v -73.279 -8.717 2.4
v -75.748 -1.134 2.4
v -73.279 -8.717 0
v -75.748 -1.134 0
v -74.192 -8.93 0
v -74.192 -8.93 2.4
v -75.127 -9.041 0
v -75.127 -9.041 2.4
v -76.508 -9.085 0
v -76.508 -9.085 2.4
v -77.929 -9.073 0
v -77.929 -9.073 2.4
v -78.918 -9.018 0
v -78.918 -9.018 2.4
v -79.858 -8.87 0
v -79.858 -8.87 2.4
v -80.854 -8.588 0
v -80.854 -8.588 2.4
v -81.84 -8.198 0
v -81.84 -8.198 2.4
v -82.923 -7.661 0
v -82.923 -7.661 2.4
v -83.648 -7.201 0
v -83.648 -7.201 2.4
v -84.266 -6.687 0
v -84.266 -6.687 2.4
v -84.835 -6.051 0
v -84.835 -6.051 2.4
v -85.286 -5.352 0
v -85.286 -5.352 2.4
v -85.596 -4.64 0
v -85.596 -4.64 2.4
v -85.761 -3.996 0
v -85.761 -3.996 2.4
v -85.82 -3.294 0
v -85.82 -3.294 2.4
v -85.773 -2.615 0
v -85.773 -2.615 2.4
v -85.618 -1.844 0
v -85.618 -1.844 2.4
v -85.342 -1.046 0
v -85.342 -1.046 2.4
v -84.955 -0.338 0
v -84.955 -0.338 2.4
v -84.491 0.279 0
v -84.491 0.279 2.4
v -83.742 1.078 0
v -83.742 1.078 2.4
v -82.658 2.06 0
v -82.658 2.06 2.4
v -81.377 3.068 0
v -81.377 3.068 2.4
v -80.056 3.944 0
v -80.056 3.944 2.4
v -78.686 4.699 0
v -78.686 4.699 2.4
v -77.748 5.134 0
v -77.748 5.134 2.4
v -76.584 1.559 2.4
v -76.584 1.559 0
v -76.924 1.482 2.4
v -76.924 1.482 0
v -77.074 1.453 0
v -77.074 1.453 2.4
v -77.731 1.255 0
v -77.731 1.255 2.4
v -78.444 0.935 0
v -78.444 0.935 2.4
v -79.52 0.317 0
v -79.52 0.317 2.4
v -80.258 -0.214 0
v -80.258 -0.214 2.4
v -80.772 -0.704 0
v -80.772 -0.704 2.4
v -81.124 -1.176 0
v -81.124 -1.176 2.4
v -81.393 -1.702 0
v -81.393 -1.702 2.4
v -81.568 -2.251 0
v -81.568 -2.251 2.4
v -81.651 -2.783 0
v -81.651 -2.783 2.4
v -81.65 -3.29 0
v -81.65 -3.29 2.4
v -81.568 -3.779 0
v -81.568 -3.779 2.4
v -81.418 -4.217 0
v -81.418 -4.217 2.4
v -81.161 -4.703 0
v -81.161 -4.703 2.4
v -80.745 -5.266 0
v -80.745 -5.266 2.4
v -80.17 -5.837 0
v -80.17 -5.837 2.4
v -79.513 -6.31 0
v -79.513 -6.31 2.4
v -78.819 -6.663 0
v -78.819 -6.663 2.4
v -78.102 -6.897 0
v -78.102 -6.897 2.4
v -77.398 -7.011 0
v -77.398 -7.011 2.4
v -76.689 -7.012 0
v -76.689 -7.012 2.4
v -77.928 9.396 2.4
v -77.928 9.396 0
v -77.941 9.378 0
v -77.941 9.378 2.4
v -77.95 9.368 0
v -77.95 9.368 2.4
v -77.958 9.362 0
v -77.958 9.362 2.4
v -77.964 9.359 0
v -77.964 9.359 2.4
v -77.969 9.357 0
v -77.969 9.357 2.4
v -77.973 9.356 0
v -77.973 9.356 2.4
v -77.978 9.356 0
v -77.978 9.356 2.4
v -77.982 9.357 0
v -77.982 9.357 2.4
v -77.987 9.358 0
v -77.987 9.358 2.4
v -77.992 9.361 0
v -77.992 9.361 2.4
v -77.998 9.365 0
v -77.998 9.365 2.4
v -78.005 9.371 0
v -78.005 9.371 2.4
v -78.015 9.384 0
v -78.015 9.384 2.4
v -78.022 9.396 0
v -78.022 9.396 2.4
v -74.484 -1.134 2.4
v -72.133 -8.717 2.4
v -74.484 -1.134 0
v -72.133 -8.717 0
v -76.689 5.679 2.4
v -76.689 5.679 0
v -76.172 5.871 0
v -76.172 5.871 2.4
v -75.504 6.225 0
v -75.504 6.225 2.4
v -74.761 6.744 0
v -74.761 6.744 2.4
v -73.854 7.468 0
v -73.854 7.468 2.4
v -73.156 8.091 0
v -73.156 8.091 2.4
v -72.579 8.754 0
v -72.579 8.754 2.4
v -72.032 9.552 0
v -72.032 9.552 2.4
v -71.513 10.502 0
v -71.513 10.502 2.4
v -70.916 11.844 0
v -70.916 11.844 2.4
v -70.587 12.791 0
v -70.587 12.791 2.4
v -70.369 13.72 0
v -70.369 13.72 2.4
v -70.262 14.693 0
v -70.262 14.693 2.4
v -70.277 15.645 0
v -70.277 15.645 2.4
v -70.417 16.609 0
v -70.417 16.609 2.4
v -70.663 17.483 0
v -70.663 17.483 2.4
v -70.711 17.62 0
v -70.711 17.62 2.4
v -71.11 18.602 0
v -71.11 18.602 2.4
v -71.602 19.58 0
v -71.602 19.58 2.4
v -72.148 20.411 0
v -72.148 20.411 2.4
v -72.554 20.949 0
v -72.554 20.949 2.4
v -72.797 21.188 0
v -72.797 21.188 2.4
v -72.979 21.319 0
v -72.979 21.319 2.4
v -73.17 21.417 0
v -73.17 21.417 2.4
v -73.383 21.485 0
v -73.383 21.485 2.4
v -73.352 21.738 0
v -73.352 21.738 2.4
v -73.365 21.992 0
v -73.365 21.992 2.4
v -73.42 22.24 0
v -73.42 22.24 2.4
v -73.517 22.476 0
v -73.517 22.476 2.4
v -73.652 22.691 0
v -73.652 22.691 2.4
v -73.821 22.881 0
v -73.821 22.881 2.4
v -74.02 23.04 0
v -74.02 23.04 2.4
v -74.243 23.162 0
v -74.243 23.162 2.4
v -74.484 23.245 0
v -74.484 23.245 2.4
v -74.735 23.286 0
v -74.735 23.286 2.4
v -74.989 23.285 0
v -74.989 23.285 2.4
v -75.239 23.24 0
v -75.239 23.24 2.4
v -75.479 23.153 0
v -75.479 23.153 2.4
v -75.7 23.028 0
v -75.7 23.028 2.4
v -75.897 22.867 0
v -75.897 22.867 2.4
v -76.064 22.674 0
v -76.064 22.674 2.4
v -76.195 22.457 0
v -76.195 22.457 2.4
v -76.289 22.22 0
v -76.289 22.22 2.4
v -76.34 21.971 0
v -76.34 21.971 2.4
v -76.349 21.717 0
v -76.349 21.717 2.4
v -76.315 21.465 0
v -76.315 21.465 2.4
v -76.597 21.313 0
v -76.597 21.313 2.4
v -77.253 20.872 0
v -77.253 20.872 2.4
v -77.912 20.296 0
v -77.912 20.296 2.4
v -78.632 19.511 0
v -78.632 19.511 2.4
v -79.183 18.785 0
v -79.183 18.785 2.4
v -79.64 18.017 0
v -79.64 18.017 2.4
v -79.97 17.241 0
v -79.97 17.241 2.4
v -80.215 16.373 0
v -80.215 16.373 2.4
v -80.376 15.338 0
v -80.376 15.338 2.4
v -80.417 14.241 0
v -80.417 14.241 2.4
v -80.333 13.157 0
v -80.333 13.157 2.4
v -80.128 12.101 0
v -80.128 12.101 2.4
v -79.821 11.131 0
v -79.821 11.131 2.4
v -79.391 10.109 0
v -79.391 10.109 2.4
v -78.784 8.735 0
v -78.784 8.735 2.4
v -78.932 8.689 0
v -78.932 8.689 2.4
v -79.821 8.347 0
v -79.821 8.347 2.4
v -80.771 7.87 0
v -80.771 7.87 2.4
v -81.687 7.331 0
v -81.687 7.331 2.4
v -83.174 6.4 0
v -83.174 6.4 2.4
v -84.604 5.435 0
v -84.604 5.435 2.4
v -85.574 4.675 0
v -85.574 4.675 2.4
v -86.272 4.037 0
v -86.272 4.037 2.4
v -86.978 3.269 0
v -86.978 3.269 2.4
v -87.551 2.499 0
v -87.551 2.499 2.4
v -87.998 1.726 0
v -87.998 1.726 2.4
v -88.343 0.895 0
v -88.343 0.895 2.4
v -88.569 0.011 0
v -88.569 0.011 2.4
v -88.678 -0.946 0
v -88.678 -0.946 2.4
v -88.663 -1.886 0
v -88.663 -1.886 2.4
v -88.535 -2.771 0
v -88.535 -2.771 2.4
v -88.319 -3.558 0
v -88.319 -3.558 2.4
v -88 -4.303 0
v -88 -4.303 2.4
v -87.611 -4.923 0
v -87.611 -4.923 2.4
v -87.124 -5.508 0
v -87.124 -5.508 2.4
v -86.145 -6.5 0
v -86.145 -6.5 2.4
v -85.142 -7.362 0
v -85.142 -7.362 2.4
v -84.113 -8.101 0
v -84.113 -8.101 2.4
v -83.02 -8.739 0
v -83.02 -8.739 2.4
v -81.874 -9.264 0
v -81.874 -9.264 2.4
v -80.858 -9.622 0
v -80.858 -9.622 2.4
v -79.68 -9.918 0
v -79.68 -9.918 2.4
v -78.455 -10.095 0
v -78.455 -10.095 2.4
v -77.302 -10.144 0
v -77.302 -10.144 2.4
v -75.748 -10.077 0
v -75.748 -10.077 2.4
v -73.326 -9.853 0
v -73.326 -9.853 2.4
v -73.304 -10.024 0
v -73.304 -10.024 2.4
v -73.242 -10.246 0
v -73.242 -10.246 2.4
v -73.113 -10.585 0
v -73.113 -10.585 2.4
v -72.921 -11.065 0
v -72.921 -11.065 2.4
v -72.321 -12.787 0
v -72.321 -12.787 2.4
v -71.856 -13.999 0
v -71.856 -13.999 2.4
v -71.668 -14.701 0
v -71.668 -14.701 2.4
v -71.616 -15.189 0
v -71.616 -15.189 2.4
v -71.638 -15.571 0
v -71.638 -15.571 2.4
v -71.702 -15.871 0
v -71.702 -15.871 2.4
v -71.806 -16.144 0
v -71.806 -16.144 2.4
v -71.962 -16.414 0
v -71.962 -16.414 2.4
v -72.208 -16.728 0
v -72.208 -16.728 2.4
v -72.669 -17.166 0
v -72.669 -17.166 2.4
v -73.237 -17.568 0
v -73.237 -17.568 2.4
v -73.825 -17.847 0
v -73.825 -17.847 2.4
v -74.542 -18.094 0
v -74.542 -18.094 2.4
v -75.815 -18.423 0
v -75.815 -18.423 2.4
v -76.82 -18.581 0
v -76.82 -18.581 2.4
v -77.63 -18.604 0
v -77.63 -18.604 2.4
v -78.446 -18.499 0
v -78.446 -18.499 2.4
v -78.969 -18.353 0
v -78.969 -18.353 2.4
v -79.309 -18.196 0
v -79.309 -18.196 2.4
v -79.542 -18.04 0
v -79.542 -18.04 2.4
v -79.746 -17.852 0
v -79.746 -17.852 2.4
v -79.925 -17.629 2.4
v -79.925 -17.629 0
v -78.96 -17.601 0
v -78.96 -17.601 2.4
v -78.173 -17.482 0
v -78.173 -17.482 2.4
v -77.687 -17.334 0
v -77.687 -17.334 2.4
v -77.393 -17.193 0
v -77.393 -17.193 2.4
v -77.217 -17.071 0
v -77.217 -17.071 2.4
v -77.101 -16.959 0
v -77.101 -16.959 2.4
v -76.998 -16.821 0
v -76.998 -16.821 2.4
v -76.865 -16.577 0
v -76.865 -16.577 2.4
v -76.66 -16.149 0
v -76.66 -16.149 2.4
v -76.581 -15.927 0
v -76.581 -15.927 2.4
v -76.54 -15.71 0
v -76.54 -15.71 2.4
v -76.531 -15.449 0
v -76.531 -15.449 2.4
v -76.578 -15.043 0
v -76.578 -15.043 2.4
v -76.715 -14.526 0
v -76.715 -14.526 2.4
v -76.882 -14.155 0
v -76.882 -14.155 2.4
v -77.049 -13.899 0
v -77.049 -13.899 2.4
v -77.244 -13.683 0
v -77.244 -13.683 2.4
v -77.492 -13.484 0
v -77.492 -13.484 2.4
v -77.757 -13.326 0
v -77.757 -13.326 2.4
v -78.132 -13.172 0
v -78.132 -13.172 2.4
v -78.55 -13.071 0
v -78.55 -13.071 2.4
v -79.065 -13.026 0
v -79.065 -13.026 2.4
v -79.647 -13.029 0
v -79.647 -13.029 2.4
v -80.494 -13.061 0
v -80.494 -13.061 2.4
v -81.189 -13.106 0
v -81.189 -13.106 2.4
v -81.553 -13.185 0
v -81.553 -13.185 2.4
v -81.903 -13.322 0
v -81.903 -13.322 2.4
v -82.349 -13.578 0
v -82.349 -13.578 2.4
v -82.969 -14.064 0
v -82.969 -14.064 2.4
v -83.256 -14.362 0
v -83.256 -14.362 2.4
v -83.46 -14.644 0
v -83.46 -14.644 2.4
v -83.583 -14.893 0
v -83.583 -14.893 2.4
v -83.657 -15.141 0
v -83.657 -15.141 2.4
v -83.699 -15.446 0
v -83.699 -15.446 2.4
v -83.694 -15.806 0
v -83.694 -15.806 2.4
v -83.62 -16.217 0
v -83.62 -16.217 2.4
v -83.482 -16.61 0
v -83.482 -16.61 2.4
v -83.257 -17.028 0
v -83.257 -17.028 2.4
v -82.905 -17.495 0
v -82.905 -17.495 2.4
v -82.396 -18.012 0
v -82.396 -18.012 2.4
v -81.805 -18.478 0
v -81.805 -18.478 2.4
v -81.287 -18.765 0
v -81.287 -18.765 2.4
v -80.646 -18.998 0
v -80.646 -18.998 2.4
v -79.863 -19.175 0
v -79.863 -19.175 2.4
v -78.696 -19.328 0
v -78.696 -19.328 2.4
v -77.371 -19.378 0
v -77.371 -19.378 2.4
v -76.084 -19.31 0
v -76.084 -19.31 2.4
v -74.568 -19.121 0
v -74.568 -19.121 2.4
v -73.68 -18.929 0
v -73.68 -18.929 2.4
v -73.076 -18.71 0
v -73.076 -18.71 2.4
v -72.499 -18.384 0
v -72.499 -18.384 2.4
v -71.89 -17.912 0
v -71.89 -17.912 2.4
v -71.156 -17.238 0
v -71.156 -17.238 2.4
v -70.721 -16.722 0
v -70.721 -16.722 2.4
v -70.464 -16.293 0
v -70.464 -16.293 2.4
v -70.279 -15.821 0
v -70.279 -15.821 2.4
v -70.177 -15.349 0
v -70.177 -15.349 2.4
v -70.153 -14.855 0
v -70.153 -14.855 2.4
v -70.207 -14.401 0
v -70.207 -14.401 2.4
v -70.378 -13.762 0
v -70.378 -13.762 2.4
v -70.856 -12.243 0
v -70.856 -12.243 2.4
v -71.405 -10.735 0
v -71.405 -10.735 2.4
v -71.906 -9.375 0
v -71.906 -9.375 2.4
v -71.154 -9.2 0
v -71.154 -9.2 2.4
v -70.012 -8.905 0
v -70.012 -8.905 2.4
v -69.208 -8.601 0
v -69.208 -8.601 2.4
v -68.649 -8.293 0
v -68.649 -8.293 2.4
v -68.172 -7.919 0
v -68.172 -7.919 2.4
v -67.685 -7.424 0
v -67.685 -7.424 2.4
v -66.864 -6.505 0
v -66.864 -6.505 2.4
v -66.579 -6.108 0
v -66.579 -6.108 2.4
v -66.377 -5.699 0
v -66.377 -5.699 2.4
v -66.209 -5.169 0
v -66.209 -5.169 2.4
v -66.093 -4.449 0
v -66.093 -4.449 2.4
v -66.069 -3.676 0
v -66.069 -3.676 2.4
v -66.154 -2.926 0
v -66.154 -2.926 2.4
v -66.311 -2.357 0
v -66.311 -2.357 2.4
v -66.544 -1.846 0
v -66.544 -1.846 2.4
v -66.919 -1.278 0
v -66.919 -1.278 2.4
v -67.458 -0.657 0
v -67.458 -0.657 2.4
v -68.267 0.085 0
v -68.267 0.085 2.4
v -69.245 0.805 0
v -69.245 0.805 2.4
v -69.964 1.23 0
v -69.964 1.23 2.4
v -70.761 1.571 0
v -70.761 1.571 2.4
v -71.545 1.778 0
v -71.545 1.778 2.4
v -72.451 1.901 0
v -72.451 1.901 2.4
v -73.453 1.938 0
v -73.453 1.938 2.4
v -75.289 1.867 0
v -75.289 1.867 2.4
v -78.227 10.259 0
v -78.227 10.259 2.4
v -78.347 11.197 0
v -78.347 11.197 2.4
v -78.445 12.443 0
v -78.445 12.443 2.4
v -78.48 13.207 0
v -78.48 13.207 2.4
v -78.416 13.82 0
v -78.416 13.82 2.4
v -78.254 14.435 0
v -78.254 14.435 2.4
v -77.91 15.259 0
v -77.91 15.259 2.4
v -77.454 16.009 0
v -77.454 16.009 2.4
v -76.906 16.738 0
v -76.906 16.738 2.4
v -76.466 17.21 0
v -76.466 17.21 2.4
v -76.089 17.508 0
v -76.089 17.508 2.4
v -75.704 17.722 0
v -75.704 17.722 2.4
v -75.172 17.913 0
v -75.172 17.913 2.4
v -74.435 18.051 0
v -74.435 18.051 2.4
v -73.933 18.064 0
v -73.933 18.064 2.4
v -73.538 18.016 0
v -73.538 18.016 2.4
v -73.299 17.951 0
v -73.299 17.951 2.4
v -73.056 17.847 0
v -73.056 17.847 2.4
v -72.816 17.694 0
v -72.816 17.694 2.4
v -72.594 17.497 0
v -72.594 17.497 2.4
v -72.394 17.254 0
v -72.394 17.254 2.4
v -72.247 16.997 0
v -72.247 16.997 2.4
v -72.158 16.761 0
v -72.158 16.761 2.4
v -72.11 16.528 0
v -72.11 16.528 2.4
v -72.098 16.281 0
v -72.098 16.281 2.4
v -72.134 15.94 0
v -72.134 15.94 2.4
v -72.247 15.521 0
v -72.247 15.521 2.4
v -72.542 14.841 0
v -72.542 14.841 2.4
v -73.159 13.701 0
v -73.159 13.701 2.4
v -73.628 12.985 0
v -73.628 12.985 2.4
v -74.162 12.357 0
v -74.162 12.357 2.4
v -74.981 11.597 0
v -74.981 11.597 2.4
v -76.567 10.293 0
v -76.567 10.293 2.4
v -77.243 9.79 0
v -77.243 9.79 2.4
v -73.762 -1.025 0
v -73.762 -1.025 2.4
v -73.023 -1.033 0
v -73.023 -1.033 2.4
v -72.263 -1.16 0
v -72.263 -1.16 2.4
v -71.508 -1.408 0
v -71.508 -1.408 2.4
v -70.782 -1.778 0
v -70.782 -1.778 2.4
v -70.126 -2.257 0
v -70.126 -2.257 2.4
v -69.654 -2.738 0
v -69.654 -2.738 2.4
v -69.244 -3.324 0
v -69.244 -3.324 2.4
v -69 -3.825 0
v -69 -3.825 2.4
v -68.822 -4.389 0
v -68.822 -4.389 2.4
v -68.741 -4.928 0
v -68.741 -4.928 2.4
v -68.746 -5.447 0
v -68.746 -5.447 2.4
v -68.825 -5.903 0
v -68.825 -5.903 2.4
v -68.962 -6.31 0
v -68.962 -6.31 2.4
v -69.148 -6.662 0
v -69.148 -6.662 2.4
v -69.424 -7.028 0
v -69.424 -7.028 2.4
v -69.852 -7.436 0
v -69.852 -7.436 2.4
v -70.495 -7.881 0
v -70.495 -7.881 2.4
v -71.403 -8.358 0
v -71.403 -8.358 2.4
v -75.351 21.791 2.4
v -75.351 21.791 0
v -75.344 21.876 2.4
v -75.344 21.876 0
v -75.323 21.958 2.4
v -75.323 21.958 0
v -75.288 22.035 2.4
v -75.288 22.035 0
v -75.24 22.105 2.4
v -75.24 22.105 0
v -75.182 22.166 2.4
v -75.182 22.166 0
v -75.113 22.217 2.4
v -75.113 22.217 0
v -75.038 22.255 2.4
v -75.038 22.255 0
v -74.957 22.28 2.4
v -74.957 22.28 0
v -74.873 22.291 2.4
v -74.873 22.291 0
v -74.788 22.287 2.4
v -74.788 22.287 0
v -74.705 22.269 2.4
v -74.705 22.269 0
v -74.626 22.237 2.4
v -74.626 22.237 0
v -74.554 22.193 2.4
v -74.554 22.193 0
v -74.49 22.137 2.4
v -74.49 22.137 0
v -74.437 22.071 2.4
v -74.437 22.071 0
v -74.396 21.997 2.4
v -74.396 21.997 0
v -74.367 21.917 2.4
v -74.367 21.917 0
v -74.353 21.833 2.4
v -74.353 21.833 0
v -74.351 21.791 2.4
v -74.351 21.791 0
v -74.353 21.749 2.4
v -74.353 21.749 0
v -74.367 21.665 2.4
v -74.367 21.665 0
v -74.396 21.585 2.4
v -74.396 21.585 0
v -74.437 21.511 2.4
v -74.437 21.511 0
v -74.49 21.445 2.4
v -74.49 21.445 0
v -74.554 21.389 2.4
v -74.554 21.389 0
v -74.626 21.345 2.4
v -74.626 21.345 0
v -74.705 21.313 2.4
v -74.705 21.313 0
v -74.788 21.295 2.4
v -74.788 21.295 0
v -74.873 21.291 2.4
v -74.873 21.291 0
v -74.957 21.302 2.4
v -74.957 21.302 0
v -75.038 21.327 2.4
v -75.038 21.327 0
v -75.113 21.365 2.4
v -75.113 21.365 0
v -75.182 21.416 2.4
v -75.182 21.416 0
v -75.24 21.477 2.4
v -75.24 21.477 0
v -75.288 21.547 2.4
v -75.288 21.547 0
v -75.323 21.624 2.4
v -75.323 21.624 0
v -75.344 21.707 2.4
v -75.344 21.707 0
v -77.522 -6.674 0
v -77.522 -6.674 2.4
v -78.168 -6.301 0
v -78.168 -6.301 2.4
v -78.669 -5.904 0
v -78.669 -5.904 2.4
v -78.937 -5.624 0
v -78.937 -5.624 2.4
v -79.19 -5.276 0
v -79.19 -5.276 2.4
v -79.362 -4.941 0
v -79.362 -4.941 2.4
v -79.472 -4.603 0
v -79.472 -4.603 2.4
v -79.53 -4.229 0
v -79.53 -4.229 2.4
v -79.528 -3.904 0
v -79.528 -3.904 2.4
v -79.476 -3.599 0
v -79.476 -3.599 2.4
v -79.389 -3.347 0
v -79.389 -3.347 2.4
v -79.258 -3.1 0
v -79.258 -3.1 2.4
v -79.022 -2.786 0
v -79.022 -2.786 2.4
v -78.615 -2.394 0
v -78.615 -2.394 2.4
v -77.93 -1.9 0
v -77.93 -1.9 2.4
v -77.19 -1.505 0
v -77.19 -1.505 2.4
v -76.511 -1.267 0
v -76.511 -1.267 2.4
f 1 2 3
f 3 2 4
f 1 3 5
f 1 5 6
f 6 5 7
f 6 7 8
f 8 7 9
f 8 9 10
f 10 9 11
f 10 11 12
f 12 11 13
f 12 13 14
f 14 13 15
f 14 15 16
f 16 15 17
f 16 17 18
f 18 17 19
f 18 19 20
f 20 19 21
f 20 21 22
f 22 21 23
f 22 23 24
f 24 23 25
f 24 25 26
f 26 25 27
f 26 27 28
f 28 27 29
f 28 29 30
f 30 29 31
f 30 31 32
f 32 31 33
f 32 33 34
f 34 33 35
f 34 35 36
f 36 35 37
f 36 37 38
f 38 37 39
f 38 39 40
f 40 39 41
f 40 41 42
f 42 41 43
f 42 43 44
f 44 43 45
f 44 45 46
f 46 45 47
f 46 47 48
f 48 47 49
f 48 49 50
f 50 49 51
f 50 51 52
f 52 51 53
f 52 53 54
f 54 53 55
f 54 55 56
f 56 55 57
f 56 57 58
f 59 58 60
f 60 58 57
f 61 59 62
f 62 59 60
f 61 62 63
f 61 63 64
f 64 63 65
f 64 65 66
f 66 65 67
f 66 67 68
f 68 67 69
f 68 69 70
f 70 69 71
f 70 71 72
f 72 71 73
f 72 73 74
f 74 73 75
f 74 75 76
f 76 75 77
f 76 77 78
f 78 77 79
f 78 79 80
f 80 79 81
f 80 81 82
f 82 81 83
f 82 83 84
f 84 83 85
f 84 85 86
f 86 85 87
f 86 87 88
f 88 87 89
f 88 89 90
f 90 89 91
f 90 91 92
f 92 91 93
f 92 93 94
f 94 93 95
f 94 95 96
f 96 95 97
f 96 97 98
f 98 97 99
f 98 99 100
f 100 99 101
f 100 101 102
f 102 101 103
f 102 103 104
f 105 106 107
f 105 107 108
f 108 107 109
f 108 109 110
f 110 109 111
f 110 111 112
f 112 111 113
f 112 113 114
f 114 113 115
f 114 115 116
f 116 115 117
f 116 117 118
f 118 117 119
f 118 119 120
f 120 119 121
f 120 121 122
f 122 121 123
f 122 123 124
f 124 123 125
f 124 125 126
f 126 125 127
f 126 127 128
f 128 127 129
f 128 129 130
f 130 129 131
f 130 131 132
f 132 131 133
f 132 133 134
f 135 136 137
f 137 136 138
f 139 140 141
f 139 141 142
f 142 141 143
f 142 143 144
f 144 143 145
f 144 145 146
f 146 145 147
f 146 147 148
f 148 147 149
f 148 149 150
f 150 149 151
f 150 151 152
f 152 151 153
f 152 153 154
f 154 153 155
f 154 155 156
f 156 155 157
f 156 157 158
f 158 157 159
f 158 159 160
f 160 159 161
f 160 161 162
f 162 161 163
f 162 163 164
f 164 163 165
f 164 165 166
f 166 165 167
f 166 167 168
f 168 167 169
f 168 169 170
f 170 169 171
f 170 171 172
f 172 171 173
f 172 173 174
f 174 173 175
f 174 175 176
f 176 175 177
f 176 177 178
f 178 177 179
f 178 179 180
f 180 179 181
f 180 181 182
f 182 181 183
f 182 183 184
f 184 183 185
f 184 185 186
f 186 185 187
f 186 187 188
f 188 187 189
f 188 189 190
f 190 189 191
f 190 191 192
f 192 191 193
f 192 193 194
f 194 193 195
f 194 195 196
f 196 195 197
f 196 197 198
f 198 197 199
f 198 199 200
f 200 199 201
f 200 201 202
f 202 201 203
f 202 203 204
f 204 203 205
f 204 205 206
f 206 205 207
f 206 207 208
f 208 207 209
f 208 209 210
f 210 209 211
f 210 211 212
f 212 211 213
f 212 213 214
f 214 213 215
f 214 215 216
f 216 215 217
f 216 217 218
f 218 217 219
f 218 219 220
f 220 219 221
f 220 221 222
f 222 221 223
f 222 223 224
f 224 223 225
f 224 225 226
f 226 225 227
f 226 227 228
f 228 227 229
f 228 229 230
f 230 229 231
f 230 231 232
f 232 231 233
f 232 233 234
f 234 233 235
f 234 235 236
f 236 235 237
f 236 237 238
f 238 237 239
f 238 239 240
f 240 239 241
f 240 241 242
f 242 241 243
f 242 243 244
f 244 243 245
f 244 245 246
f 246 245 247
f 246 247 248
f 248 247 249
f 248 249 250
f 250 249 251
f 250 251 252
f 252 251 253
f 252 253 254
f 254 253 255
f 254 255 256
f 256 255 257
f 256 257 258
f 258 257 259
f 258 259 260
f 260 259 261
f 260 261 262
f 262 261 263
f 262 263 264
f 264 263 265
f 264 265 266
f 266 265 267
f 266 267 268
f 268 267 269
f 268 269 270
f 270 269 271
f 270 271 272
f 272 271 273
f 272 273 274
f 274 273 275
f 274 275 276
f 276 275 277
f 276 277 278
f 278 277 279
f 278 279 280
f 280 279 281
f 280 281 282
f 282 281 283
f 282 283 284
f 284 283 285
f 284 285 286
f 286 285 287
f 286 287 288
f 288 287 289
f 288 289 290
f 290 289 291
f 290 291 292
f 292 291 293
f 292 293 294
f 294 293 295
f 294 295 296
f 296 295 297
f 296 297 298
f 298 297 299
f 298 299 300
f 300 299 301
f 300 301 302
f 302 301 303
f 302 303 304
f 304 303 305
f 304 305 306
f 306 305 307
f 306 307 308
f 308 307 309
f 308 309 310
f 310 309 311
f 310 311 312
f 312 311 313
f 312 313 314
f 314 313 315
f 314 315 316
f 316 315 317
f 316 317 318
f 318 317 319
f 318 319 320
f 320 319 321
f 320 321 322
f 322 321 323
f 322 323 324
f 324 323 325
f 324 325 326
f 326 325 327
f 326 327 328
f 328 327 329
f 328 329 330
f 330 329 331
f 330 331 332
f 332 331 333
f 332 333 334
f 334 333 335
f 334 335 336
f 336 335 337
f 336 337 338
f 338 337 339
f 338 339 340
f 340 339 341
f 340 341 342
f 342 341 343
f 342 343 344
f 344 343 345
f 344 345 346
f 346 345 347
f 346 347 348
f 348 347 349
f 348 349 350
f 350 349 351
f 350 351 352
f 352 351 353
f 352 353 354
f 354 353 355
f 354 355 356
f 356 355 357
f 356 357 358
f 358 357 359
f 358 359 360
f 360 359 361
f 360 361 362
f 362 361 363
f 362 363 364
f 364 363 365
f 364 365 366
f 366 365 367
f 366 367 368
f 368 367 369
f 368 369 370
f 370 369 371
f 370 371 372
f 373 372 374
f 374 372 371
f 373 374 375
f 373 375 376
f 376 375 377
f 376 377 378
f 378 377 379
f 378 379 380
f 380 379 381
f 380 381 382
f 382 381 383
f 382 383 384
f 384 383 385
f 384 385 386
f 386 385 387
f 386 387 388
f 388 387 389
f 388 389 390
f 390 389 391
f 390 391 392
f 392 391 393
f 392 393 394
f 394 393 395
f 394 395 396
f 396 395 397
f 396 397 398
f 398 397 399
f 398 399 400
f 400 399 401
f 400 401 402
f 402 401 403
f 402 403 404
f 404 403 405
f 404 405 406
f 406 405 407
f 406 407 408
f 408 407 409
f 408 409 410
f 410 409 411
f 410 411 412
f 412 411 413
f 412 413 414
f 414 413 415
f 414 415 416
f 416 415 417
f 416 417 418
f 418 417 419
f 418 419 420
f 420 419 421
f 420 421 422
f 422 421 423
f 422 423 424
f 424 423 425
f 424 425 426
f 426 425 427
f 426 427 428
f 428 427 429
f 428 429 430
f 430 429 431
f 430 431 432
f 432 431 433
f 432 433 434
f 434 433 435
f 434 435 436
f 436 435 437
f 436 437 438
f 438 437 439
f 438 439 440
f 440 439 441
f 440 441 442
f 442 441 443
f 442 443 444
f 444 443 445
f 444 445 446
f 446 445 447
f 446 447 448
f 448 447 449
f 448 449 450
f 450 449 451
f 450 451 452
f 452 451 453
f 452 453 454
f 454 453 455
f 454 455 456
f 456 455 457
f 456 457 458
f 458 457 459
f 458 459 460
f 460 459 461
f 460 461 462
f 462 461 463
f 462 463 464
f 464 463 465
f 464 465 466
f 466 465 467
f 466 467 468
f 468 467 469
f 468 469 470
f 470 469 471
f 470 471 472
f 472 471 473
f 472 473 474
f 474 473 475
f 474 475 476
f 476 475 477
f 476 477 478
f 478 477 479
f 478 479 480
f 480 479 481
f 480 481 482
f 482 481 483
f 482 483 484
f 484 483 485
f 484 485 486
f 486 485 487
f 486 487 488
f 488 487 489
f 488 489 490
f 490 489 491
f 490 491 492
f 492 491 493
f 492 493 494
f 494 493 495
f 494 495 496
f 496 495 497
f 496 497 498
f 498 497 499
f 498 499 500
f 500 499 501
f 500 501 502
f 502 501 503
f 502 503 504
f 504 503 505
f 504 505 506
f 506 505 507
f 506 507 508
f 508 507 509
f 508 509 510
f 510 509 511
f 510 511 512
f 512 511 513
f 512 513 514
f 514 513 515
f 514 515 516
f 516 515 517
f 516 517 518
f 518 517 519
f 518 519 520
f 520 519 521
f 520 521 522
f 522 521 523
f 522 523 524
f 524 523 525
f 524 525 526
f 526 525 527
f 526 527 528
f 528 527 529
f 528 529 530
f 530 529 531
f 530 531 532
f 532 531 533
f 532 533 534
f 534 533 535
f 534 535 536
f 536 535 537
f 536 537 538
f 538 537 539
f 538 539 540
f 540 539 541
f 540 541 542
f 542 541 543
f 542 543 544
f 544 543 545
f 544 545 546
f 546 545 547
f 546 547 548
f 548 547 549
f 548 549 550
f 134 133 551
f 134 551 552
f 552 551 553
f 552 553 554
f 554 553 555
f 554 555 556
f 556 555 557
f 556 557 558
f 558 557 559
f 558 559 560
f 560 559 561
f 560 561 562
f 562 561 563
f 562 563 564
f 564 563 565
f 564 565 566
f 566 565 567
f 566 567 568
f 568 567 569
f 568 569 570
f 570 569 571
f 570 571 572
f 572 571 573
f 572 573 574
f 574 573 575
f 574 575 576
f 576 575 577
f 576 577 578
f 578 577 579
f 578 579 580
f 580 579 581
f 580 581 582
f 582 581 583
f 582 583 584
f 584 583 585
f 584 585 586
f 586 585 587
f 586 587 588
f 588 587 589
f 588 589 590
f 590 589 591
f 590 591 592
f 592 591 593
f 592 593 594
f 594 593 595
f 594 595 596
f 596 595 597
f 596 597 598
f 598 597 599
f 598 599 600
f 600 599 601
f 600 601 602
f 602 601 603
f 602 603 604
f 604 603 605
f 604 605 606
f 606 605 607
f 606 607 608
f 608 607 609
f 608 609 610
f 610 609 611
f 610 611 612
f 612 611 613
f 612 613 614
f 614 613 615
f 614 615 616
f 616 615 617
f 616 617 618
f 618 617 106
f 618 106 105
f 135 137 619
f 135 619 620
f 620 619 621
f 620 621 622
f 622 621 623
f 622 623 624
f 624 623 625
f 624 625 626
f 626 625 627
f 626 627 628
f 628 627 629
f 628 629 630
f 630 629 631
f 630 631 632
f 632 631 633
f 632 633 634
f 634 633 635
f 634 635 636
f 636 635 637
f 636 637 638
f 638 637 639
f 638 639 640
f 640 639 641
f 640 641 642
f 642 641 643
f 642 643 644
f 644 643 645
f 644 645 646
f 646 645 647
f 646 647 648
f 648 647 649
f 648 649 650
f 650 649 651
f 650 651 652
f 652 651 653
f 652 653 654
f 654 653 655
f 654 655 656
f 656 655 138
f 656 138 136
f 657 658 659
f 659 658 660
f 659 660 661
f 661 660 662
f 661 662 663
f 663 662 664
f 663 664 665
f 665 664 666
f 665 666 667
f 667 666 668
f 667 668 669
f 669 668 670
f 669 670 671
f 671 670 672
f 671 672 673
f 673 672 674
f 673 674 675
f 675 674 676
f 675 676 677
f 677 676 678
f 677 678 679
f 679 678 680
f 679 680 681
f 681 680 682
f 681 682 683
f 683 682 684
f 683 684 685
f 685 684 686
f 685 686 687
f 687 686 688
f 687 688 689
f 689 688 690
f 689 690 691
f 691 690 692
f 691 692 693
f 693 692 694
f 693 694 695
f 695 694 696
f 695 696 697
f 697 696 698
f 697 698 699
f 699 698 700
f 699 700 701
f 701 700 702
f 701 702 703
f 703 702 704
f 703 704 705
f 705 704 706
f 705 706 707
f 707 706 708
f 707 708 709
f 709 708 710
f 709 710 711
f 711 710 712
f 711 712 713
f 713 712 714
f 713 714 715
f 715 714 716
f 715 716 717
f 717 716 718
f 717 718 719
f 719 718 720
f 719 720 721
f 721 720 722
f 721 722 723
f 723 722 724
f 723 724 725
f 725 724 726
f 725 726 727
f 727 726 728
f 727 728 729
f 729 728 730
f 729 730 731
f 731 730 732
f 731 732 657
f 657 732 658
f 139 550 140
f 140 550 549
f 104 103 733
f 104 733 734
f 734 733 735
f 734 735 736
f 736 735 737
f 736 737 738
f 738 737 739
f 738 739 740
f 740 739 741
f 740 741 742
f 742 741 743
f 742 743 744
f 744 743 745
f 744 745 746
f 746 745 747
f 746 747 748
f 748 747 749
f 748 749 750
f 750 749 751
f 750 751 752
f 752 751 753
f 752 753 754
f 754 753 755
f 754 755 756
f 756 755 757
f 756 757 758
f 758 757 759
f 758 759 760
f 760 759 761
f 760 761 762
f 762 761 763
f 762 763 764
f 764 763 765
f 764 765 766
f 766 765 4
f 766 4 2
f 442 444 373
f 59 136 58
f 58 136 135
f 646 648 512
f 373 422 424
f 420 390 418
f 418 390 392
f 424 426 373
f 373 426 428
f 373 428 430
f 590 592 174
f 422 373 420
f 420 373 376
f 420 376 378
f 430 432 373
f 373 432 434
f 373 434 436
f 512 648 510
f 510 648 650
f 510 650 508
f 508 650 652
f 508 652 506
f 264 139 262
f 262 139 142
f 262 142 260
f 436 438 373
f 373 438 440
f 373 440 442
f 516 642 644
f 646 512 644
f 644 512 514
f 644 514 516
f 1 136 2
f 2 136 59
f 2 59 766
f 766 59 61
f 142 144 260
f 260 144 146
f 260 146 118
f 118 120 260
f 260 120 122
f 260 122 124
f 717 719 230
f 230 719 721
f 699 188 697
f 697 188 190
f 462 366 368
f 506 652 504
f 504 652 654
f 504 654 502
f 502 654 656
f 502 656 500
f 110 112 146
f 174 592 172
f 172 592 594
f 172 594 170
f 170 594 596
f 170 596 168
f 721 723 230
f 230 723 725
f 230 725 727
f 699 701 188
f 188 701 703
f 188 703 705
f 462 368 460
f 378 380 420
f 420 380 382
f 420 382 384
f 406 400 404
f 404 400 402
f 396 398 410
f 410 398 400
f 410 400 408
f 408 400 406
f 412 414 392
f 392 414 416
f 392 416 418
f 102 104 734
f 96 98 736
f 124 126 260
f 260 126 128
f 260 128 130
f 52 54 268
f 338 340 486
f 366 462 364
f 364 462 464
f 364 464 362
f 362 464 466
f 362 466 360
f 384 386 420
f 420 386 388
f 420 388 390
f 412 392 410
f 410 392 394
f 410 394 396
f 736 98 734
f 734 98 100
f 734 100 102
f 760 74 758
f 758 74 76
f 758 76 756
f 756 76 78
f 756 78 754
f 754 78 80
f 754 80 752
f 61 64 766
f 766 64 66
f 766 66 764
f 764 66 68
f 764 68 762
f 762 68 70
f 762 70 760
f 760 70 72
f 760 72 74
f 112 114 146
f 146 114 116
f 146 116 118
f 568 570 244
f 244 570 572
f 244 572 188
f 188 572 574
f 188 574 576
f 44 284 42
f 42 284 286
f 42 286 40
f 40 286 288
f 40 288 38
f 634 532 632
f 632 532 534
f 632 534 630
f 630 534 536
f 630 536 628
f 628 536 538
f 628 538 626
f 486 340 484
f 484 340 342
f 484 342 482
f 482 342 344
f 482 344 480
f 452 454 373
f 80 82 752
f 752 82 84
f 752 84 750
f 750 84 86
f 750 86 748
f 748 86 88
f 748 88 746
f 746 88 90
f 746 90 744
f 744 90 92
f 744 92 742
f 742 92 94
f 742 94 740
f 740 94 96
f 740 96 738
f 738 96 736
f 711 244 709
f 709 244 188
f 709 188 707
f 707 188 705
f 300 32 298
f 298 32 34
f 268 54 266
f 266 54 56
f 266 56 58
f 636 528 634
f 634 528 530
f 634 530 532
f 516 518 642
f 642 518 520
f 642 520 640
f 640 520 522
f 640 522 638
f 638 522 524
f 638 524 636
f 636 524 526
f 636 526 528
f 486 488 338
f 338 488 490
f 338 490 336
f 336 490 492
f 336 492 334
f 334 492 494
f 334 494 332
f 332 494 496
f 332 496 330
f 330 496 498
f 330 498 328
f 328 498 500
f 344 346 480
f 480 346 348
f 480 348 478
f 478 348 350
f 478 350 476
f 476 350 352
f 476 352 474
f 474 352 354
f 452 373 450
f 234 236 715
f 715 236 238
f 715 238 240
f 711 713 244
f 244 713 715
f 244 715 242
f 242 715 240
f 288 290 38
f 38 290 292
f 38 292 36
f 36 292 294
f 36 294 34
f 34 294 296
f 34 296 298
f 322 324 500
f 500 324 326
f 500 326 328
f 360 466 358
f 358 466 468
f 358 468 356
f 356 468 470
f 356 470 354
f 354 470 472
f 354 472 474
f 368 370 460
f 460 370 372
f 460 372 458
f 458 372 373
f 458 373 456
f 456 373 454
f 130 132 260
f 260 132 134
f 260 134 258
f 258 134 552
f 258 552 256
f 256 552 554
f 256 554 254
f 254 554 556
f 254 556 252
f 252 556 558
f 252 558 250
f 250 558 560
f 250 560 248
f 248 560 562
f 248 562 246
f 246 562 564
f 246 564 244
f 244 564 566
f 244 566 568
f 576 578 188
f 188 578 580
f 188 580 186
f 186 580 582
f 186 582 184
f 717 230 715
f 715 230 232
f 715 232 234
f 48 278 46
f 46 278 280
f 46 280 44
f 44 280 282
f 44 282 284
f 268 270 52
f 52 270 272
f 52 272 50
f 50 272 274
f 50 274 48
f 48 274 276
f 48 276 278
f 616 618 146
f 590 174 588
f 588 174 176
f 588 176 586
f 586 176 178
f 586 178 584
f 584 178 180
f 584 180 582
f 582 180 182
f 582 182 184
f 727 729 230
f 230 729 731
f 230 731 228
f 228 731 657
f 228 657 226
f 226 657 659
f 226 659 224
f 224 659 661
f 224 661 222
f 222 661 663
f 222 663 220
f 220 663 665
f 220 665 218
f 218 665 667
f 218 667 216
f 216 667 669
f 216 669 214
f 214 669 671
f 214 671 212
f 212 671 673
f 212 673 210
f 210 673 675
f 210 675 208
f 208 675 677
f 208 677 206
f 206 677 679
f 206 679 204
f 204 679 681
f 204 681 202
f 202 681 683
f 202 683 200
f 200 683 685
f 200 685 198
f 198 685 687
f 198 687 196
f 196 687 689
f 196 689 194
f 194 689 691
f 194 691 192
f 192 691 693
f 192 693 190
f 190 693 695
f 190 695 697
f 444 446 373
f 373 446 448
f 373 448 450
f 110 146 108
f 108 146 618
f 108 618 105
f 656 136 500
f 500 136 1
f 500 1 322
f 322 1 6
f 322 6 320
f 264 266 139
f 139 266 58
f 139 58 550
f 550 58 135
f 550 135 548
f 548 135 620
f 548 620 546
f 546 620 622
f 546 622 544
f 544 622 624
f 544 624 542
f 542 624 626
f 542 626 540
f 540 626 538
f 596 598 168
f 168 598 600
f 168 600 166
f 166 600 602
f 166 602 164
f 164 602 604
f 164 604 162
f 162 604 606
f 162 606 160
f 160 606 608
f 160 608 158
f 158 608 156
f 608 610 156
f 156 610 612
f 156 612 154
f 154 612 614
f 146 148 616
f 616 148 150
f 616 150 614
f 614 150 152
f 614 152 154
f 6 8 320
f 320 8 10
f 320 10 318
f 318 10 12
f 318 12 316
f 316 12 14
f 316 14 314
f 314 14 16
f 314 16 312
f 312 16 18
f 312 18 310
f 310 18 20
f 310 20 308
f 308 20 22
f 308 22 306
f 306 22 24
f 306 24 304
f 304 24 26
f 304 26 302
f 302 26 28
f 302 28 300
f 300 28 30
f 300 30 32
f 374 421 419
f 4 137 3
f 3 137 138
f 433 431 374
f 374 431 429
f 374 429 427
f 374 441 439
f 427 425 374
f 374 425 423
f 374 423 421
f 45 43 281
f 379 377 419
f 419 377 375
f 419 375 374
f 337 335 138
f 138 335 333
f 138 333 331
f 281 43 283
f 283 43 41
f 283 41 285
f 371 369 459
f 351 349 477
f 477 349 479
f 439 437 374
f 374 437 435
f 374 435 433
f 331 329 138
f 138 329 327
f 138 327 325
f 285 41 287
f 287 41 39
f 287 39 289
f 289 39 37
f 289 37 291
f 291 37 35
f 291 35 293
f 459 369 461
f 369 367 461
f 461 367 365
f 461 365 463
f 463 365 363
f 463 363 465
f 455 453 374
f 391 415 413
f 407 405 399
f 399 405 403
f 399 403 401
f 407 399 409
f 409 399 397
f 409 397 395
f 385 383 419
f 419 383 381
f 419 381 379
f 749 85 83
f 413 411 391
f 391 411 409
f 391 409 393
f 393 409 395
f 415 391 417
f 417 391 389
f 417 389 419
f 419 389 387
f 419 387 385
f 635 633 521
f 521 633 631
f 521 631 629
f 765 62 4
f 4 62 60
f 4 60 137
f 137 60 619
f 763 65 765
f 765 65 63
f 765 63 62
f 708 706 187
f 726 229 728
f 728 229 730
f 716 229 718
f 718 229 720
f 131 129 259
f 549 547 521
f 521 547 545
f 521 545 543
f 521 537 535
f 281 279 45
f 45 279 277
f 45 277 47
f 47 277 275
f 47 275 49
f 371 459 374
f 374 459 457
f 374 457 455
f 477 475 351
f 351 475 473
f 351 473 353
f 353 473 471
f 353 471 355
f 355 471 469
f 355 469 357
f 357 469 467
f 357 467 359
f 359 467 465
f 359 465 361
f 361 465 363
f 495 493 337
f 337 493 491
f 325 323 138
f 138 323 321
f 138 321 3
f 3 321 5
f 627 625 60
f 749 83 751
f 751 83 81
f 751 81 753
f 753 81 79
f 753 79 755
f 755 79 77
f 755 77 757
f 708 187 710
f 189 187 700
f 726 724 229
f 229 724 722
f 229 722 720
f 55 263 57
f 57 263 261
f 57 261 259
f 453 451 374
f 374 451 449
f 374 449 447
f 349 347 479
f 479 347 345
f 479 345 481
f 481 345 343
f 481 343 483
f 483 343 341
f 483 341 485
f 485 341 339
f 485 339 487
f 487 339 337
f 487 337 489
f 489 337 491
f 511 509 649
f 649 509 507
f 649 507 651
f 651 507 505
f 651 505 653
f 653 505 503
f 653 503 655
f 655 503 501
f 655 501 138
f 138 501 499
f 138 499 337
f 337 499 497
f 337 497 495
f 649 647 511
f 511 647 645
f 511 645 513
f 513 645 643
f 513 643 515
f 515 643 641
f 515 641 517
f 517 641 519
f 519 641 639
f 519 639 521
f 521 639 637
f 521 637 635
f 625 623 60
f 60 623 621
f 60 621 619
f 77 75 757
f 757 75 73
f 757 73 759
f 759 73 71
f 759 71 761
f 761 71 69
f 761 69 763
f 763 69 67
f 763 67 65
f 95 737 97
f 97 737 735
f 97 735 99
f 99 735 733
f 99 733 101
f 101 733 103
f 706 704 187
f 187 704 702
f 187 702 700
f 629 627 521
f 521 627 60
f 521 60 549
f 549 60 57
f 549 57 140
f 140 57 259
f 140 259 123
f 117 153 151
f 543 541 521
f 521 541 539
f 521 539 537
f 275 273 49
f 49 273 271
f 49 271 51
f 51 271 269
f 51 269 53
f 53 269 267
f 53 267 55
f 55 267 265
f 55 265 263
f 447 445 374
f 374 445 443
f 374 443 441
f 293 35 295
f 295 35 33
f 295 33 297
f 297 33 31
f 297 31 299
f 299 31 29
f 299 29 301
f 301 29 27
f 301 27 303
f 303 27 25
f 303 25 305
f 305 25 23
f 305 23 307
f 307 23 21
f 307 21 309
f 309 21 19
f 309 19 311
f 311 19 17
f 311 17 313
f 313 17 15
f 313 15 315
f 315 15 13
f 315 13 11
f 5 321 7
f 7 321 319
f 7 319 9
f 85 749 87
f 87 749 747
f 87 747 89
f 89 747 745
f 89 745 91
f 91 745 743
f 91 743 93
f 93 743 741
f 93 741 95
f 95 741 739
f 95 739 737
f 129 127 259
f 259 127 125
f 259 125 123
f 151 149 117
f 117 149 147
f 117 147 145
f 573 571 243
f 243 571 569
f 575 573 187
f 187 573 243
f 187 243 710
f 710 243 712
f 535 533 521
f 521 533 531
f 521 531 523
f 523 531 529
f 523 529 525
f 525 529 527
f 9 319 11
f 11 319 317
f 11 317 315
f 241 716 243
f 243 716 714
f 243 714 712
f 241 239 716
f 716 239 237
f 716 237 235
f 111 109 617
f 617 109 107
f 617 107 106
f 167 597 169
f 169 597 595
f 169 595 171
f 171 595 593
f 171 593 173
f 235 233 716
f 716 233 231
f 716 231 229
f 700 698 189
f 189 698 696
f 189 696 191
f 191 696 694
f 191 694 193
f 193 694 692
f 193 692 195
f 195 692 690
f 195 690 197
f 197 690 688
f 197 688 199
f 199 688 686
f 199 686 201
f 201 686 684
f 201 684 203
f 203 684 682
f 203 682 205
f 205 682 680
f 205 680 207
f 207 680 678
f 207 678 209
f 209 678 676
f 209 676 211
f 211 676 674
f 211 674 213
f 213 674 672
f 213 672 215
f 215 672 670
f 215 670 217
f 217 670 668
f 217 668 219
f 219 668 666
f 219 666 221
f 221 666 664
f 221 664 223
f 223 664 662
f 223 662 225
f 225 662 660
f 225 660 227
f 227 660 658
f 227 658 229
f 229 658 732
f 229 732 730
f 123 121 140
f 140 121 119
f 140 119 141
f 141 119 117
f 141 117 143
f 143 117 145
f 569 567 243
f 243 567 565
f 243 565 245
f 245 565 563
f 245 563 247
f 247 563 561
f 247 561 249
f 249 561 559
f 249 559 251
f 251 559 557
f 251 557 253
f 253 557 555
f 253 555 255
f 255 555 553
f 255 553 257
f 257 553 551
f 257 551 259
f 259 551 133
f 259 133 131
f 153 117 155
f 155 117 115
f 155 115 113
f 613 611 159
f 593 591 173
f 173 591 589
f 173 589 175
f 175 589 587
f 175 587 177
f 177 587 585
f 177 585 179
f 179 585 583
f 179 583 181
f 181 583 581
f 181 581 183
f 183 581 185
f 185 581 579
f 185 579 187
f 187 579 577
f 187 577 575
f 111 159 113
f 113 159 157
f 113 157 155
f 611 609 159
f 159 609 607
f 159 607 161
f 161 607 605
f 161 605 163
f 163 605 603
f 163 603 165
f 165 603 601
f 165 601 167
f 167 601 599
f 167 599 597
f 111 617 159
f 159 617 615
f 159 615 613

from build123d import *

# Parameters (mm, degrees)
CROQUIS1_R              = 0.5
SALIENTE_EXTRUIR1_DEPTH = 2.4


with BuildPart() as part:
    # Croquis1 → Saliente-Extruir1 (new body)
    with BuildSketch(Plane.XY):
        with BuildLine():
            add(Edge.make_bspline(
                [(-73.382843904, 21.485172649), (-72.816279322, 21.352562277), (-72.290048161, 20.617939926), (-71.563359458, 19.572554368), (-70.955369846, 18.303271377), (-70.180325761, 16.279733813), (-70.210087208, 13.6244299), (-71.118438702, 11.274052597), (-72.034700283, 9.43128208), (-73.060953827, 8.093199889), (-74.176463418, 7.211487575), (-75.245307097, 6.341435028), (-76.105343924, 5.854934057), (-76.688929455, 5.678784709)],
                knots=[0, 0, 0, 0, 0.082720072, 0.13560082, 0.197595917, 0.299487219, 0.46892434, 0.591754444, 0.687028642, 0.786865301, 0.848882337, 0.906336095, 1, 1, 1, 1], degree=3))
            Line((-76.688929455, 5.678784709), (-75.288653219, 1.867168619))
            add(Edge.make_bspline(
                [(-75.288653219, 1.867168619), (-74.468411952, 1.908252334), (-72.872577878, 2.015461097), (-70.631463745, 1.675125729), (-68.810384606, 0.565616098), (-67.389820174, -0.62554349), (-66.153734293, -2.256742458), (-65.96167945, -4.235010195), (-66.365441771, -6.009358939), (-67.459170254, -7.148174835), (-68.270466433, -8.123187694), (-69.854703917, -8.959771389), (-71.054207735, -9.166320913), (-71.906140878, -9.374564164)],
                knots=[0, 0, 0, 0, 0.11762295, 0.230289999, 0.317392698, 0.419586807, 0.496456837, 0.603597023, 0.693697186, 0.746523704, 0.827441455, 0.873617317, 1, 1, 1, 1], degree=3))
            add(Edge.make_bspline(
                [(-71.906140878, -9.374564164), (-71.61278094, -10.266839308), (-71.036756395, -11.553098269), (-70.528271485, -13.35950605), (-70.000664218, -14.794214547), (-70.38948534, -16.535052776), (-71.615071455, -17.699585086), (-73.060823598, -18.884419966), (-74.955161604, -19.19978755), (-77.241867683, -19.438869557), (-79.443104395, -19.317828204), (-81.433845047, -18.830999441), (-82.464748145, -17.980329563), (-83.140965101, -17.252480478), (-83.593955092, -16.480808011), (-83.752954974, -15.617546025), (-83.608641776, -14.78603997), (-83.194756323, -14.263514026), (-82.702884853, -13.823597136), (-82.179262793, -13.441681166), (-81.432137939, -13.092921965), (-80.517138878, -13.064254835), (-79.492506239, -13.016435402), (-78.279139352, -13.020538301), (-77.016213715, -13.666355282), (-76.555165276, -14.862084339), (-76.488557331, -15.83888893), (-76.815315899, -16.458860603), (-77.065125243, -17.020204619), (-77.742898732, -17.401740743), (-78.706718276, -17.603569236), (-79.482690885, -17.645040657), (-79.925056233, -17.629067046)],
                knots=[0, 0, 0, 0, 0.074805241, 0.11132212, 0.149630483, 0.194577694, 0.242981274, 0.281554535, 0.341328008, 0.390461965, 0.465398944, 0.516027146, 0.549472808, 0.569857733, 0.595053118, 0.619442754, 0.638197686, 0.660324416, 0.670723298, 0.690791225, 0.711746454, 0.73503389, 0.762613743, 0.793710312, 0.830998489, 0.86650762, 0.890979006, 0.905817433, 0.921675854, 0.938569682, 0.964778851, 1, 1, 1, 1], degree=3))
            add(Edge.make_bspline(
                [(-79.745792871, -17.851802825), (-79.925056233, -17.629067046)],
                knots=[0, 0, 1, 1], degree=1))
            add(Edge.make_bspline(
                [(-79.745792871, -17.851802825), (-79.377728082, -18.250457197), (-78.598905688, -18.510175961), (-77.445529422, -18.641537901), (-76.334832164, -18.54753779), (-75.193190702, -18.291470417), (-74.157420098, -17.982791531), (-73.328642935, -17.655936573), (-72.674800508, -17.19664297), (-72.136943705, -16.684677178), (-71.725059461, -16.078199587), (-71.557910168, -15.250749341), (-71.729283252, -14.277038523), (-72.075975491, -13.411558538), (-72.37751376, -12.660176729), (-72.546628338, -12.092589849), (-72.748229841, -11.588348302), (-72.895787934, -11.112644121), (-73.065295019, -10.700797712), (-73.235237824, -10.283342723), (-73.317254276, -10.026629889), (-73.326078886, -9.853276729)],
                knots=[0, 0, 0, 0, 0.100297216, 0.155435072, 0.224439636, 0.315020887, 0.381826218, 0.433978194, 0.486800826, 0.535484251, 0.577523687, 0.626710452, 0.694737543, 0.765895596, 0.807411146, 0.851576548, 0.88054523, 0.912596844, 0.948032108, 0.966788769, 1, 1, 1, 1], degree=3))
            add(Edge.make_bspline(
                [(-73.326078886, -9.853276729), (-74.979679959, -9.995751786), (-78.452282633, -10.49535985), (-83.388178533, -8.914488142), (-86.275432814, -6.495055205), (-87.957194856, -4.564365563), (-88.570288982, -2.996611158), (-88.775793899, -1.013821722), (-88.306004497, 1.729575325), (-85.949537881, 4.676575), (-82.425763739, 6.869714587), (-80.045029758, 8.359671299), (-78.783962186, 8.735087678)],
                knots=[0, 0, 0, 0, 0.144810891, 0.29982304, 0.43227727, 0.467632746, 0.520861501, 0.574899367, 0.63945409, 0.757272263, 0.88708928, 1, 1, 1, 1], degree=3))
            add(Edge.make_bspline(
                [(-78.783962186, 8.735087678), (-79.148845445, 9.634457766), (-80.225036896, 11.646609291), (-80.612874405, 14.950152713), (-79.907852199, 17.82628115), (-78.379717416, 19.921328754), (-77.201516961, 21.020487171), (-76.3154098, 21.464690957)],
                knots=[0, 0, 0, 0, 0.201335738, 0.468683326, 0.668300446, 0.798365415, 1, 1, 1, 1], degree=3))
            ThreePointArc((-76.3154098, 21.464690957), (-74.861810481, 23.290972059), (-73.382843904, 21.485172649))
        make_face()
        with Locations((-74.851334403, 21.791008643)):
            Circle(CROQUIS1_R, mode=Mode.SUBTRACT)
        with BuildLine():
            Line((-74.484460646, -1.133595475), (-72.133027249, -8.716968179))
            add(Edge.make_bspline(
                [(-74.484460646, -1.133595475), (-73.283378869, -0.850339229), (-71.440115738, -1.186045151), (-69.63352513, -2.610213082), (-68.835374903, -3.973046003), (-68.644563627, -5.376781633), (-69.097791243, -6.878034458), (-70.443842904, -7.955321849), (-71.594543517, -8.436745129), (-72.133027249, -8.716968179)],
                knots=[0, 0, 0, 0, 0.278394154, 0.399126556, 0.515243262, 0.629976033, 0.711946034, 0.862107141, 1, 1, 1, 1], degree=3))
        make_face(mode=Mode.SUBTRACT)
        with BuildLine():
            add(Edge.make_bspline(
                [(-77.928016672, 9.39589872), (-77.977009898, 9.316591026), (-78.022202288, 9.39589872)],
                knots=[0, 0, 0, 1, 1, 1], degree=2))
            add(Edge.make_bspline(
                [(-78.022202288, 9.39589872), (-78.112248491, 9.743130089), (-78.284610236, 10.407782258), (-78.36421323, 11.409395561), (-78.43433762, 12.340152669), (-78.512865884, 13.222993811), (-78.400129242, 13.997240727), (-78.145886099, 14.774699767), (-77.782315961, 15.558796545), (-77.239268592, 16.313589804), (-76.698081348, 17.018136895), (-75.948448577, 17.679765585), (-74.922434231, 18.019394979), (-73.923097777, 18.108525469), (-72.826532687, 17.872003144), (-72.062827891, 16.965972459), (-72.102821748, 15.783989767), (-72.52046451, 14.856380567), (-73.10790887, 13.752968837), (-73.778471189, 12.706556273), (-74.678093213, 11.851215915), (-75.618461258, 11.048901475), (-76.628439152, 10.234767882), (-77.424220679, 9.64031082), (-77.86765592, 9.425182197), (-77.928016672, 9.39589872)],
                knots=[0, 0, 0, 0, 0.046234465, 0.088499601, 0.129376126, 0.166981464, 0.202560649, 0.229435641, 0.272508236, 0.313509199, 0.349201554, 0.387286028, 0.440602524, 0.485479344, 0.515571404, 0.583511224, 0.614581517, 0.664465849, 0.712996668, 0.776704411, 0.823500625, 0.87268466, 0.936376551, 0.991339526, 1, 1, 1, 1], degree=3))
        make_face(mode=Mode.SUBTRACT)
        with BuildLine():
            Line((-75.748356097, -1.133595475), (-73.27935103, -8.716968179))
            add(Edge.make_bspline(
                [(-73.27935103, -8.716968179), (-74.54403941, -9.099328125), (-76.597852728, -9.085833404), (-79.644615755, -9.068104931), (-81.932302943, -8.226273805), (-83.957404242, -7.110551081), (-85.273526187, -5.621380732), (-85.914909067, -3.853044747), (-85.759925302, -2.201384209), (-85.282619327, -0.736042917), (-84.392643233, 0.456217849), (-83.27080941, 1.539666913), (-81.207549469, 3.314419204), (-79.282403907, 4.472508042), (-77.747782265, 5.134297209)],
                knots=[0, 0, 0, 0, 0.140602397, 0.223478455, 0.328347819, 0.401004637, 0.472812394, 0.539192635, 0.598886041, 0.649529088, 0.70484218, 0.758150444, 0.818924333, 1, 1, 1, 1], degree=3))
            Line((-77.747782265, 5.134297209), (-76.583774396, 1.559130182))
            add(Edge.make_bspline(
                [(-76.583774396, 1.559130182), (-76.924072795, 1.482374179)],
                knots=[0, 0, 1, 1], degree=1))
            add(Edge.make_bspline(
                [(-76.688929455, -7.012178967), (-77.779962606, -7.101137668), (-79.354199759, -6.611511351), (-80.90825158, -5.19158372), (-81.724995865, -3.79418853), (-81.664670946, -2.150791159), (-80.978762427, -0.807113786), (-80.041282643, -0.014701178), (-79.235120023, 0.503541817), (-78.26137141, 1.051323643), (-77.500345123, 1.381049705), (-76.924072795, 1.482374179)],
                knots=[0, 0, 0, 0, 0.22965919, 0.335098219, 0.44680271, 0.56432709, 0.670369882, 0.760787276, 0.823624202, 0.875763436, 1, 1, 1, 1], degree=3))
            add(Edge.make_bspline(
                [(-76.688929455, -7.012178967), (-77.740334836, -6.669763356), (-79.493284206, -5.687330151), (-79.609713646, -3.253547132), (-78.048029923, -1.823215334), (-76.690901104, -1.21666721), (-75.748356097, -1.133595475)],
                knots=[0, 0, 0, 0, 0.383378054, 0.51727079, 0.709392586, 1, 1, 1, 1], degree=3))
        make_face(mode=Mode.SUBTRACT)
    extrude(amount=SALIENTE_EXTRUIR1_DEPTH)


solid = part.part
